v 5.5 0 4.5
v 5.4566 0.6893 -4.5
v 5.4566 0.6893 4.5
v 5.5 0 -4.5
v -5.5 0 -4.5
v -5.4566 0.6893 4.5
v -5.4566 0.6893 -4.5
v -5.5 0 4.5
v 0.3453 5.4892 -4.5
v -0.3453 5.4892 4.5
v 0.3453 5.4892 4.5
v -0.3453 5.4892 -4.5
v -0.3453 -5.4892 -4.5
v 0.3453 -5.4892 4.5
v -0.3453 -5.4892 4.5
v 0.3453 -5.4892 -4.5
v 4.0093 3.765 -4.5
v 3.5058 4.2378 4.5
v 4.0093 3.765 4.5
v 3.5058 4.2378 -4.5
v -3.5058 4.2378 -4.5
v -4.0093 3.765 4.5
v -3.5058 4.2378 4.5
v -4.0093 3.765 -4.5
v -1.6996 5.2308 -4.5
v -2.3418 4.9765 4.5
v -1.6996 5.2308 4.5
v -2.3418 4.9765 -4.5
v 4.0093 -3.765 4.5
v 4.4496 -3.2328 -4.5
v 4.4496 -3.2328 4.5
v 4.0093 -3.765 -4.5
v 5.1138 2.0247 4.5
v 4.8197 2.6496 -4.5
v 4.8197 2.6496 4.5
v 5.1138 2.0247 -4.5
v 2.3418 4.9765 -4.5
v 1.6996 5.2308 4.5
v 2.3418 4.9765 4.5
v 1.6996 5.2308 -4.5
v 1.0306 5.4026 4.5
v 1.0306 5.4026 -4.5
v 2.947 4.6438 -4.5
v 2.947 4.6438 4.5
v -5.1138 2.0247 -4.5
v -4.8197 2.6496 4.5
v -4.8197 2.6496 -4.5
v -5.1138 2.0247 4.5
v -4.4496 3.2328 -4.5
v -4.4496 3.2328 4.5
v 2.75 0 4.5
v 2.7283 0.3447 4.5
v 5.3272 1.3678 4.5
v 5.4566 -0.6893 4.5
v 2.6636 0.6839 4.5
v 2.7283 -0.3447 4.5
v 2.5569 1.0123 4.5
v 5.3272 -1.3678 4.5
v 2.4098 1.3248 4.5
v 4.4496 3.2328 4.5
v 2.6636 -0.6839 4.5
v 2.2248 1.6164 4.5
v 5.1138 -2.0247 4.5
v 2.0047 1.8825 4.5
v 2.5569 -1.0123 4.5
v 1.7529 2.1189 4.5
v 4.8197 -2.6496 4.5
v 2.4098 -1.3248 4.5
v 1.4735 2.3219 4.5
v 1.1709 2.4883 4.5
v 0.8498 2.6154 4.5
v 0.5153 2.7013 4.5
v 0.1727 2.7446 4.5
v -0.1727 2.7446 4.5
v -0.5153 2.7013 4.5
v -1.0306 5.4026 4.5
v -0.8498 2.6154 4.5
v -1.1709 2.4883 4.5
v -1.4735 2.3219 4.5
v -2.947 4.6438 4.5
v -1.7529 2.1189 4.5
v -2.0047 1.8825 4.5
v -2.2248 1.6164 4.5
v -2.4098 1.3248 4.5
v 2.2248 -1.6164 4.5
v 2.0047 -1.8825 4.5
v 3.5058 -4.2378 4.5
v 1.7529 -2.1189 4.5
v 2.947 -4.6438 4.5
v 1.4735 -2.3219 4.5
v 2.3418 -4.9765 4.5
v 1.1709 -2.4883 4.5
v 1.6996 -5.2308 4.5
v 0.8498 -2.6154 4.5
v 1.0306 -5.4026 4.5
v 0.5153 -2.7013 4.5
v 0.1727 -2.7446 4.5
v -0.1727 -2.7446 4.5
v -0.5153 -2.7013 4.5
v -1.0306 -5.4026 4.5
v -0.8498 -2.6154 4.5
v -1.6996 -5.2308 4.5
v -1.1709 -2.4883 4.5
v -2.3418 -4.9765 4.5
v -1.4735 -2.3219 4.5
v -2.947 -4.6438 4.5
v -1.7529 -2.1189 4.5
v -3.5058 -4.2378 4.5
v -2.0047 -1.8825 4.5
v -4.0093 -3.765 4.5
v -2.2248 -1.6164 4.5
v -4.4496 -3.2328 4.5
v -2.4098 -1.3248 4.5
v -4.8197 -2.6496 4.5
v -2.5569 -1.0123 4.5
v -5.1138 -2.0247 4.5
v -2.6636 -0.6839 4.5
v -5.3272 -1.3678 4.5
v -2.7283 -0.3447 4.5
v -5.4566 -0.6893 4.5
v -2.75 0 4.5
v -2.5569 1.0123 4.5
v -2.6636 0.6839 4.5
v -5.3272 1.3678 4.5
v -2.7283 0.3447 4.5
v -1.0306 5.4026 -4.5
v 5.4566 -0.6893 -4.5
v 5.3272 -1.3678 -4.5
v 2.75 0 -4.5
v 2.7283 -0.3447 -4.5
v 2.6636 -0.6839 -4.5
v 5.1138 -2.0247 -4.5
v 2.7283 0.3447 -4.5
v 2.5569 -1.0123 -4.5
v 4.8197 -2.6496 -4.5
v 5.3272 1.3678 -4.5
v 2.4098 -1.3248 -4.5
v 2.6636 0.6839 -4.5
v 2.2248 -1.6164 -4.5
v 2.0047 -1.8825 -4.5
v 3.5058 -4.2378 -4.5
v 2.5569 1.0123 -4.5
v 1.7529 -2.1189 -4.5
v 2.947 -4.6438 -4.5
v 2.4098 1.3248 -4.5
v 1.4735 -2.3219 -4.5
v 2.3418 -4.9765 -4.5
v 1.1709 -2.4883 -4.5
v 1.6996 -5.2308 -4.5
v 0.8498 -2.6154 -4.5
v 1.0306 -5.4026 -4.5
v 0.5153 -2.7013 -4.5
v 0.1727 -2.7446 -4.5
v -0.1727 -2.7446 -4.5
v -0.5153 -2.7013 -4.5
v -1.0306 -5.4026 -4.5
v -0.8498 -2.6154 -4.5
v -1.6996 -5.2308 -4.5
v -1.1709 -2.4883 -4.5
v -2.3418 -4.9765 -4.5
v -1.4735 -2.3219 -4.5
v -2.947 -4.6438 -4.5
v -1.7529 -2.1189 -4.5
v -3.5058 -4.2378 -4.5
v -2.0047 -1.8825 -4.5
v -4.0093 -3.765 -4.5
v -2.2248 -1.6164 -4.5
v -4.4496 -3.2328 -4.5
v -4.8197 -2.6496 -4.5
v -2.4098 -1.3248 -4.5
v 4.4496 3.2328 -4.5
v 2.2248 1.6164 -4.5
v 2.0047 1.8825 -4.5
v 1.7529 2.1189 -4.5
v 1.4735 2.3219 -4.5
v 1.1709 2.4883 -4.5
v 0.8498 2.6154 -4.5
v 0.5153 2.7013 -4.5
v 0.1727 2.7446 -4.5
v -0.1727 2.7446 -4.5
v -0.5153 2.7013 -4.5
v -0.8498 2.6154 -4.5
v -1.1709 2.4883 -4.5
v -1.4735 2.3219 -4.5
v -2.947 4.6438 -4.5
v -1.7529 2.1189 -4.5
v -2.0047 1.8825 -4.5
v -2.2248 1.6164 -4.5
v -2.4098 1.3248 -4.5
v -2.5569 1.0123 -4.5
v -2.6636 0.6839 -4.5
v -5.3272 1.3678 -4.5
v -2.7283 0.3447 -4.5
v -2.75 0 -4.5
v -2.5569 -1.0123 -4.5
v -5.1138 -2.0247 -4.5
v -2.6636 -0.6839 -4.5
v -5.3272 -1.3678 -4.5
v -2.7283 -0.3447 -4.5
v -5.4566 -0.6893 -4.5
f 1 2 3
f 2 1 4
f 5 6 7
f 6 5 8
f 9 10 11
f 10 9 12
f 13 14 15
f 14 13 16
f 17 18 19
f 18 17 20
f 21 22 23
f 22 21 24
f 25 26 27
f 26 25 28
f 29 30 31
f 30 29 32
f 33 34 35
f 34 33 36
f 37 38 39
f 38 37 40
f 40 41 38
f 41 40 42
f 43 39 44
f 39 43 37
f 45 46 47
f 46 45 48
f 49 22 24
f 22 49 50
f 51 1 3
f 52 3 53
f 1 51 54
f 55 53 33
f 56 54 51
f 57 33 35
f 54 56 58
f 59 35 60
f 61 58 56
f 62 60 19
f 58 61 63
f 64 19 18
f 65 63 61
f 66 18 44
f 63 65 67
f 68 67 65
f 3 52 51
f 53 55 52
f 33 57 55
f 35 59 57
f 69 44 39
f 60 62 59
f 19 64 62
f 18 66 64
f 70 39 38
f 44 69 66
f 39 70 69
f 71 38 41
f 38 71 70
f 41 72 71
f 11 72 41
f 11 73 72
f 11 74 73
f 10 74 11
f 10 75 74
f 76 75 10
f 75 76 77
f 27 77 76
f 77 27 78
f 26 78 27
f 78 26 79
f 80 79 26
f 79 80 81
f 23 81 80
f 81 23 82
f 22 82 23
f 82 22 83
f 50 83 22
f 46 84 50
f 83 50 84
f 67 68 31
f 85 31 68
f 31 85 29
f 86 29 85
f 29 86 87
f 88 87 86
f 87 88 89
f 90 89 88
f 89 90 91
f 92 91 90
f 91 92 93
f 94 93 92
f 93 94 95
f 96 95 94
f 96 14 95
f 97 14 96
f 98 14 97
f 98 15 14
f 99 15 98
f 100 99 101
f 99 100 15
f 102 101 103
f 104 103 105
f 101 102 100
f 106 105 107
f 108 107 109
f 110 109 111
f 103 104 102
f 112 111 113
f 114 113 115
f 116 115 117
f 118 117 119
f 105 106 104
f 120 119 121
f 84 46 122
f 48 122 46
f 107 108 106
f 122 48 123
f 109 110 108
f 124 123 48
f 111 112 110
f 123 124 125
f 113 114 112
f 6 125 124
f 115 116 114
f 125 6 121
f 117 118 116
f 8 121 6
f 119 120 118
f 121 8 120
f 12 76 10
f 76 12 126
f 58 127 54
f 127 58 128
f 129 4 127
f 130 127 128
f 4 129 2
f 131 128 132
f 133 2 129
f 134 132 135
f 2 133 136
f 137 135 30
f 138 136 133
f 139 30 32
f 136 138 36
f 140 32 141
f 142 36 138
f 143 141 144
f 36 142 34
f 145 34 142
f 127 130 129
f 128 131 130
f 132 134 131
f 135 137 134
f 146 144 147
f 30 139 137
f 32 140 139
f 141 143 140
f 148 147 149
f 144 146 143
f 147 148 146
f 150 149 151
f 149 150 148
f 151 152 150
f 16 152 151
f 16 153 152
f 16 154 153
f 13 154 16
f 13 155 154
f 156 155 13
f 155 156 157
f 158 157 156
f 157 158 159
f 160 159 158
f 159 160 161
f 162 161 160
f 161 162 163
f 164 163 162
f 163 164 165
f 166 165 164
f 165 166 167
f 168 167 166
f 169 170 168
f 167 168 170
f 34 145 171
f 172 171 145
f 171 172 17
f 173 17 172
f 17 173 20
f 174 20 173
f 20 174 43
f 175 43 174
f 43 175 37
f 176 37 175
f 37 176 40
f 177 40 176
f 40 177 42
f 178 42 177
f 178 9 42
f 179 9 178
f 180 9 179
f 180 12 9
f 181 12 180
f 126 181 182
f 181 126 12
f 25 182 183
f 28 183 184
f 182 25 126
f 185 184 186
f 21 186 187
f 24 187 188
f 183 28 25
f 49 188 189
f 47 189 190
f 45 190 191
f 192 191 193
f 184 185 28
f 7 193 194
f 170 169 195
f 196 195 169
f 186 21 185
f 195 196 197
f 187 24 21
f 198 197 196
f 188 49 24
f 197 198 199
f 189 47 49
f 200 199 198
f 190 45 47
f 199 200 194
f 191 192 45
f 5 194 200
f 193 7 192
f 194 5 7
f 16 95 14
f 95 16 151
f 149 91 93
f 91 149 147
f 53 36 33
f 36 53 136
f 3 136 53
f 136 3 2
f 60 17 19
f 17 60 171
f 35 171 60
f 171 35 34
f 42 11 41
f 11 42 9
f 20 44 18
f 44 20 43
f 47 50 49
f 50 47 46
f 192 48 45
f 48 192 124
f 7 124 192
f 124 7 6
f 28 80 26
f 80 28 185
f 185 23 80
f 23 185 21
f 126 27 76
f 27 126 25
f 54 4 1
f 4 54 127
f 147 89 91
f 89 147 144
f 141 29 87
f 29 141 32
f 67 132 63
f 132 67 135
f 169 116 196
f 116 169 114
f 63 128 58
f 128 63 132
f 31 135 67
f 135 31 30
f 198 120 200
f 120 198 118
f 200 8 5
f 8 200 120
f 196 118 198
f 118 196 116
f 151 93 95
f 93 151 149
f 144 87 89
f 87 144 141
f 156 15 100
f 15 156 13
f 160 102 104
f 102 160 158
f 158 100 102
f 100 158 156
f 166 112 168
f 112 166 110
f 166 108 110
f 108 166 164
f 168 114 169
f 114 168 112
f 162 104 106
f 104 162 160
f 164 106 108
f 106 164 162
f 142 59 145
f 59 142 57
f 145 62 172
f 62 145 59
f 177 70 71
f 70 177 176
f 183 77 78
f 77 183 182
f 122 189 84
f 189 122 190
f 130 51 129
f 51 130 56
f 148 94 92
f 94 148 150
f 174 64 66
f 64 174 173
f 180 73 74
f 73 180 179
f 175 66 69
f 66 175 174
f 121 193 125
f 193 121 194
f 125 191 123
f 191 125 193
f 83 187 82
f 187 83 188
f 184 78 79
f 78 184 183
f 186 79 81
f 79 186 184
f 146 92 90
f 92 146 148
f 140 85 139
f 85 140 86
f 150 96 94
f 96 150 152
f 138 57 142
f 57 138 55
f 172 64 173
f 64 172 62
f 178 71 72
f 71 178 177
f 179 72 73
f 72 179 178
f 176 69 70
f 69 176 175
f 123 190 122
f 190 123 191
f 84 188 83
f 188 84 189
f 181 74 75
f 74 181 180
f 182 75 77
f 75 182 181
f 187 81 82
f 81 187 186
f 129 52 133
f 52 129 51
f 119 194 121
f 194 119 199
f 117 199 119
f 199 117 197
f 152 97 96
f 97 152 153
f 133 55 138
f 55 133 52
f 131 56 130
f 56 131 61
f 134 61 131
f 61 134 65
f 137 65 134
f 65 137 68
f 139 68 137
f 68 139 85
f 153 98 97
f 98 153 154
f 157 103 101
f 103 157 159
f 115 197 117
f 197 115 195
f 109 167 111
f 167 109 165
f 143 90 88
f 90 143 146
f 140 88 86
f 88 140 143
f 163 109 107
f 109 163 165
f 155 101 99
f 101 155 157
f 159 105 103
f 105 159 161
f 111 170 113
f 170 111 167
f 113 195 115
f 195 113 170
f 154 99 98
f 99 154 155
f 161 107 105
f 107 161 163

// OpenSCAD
$fn = 50;


difference() {
	union() {
		translate(v = [0, 0, -4.5000000000]) {
			cylinder(h = 9, r = 5.5000000000);
		}
	}
	union() {
		translate(v = [0, 0, -100.0000000000]) {
			cylinder(h = 200, r = 2.7500000000);
		}
	}
}
